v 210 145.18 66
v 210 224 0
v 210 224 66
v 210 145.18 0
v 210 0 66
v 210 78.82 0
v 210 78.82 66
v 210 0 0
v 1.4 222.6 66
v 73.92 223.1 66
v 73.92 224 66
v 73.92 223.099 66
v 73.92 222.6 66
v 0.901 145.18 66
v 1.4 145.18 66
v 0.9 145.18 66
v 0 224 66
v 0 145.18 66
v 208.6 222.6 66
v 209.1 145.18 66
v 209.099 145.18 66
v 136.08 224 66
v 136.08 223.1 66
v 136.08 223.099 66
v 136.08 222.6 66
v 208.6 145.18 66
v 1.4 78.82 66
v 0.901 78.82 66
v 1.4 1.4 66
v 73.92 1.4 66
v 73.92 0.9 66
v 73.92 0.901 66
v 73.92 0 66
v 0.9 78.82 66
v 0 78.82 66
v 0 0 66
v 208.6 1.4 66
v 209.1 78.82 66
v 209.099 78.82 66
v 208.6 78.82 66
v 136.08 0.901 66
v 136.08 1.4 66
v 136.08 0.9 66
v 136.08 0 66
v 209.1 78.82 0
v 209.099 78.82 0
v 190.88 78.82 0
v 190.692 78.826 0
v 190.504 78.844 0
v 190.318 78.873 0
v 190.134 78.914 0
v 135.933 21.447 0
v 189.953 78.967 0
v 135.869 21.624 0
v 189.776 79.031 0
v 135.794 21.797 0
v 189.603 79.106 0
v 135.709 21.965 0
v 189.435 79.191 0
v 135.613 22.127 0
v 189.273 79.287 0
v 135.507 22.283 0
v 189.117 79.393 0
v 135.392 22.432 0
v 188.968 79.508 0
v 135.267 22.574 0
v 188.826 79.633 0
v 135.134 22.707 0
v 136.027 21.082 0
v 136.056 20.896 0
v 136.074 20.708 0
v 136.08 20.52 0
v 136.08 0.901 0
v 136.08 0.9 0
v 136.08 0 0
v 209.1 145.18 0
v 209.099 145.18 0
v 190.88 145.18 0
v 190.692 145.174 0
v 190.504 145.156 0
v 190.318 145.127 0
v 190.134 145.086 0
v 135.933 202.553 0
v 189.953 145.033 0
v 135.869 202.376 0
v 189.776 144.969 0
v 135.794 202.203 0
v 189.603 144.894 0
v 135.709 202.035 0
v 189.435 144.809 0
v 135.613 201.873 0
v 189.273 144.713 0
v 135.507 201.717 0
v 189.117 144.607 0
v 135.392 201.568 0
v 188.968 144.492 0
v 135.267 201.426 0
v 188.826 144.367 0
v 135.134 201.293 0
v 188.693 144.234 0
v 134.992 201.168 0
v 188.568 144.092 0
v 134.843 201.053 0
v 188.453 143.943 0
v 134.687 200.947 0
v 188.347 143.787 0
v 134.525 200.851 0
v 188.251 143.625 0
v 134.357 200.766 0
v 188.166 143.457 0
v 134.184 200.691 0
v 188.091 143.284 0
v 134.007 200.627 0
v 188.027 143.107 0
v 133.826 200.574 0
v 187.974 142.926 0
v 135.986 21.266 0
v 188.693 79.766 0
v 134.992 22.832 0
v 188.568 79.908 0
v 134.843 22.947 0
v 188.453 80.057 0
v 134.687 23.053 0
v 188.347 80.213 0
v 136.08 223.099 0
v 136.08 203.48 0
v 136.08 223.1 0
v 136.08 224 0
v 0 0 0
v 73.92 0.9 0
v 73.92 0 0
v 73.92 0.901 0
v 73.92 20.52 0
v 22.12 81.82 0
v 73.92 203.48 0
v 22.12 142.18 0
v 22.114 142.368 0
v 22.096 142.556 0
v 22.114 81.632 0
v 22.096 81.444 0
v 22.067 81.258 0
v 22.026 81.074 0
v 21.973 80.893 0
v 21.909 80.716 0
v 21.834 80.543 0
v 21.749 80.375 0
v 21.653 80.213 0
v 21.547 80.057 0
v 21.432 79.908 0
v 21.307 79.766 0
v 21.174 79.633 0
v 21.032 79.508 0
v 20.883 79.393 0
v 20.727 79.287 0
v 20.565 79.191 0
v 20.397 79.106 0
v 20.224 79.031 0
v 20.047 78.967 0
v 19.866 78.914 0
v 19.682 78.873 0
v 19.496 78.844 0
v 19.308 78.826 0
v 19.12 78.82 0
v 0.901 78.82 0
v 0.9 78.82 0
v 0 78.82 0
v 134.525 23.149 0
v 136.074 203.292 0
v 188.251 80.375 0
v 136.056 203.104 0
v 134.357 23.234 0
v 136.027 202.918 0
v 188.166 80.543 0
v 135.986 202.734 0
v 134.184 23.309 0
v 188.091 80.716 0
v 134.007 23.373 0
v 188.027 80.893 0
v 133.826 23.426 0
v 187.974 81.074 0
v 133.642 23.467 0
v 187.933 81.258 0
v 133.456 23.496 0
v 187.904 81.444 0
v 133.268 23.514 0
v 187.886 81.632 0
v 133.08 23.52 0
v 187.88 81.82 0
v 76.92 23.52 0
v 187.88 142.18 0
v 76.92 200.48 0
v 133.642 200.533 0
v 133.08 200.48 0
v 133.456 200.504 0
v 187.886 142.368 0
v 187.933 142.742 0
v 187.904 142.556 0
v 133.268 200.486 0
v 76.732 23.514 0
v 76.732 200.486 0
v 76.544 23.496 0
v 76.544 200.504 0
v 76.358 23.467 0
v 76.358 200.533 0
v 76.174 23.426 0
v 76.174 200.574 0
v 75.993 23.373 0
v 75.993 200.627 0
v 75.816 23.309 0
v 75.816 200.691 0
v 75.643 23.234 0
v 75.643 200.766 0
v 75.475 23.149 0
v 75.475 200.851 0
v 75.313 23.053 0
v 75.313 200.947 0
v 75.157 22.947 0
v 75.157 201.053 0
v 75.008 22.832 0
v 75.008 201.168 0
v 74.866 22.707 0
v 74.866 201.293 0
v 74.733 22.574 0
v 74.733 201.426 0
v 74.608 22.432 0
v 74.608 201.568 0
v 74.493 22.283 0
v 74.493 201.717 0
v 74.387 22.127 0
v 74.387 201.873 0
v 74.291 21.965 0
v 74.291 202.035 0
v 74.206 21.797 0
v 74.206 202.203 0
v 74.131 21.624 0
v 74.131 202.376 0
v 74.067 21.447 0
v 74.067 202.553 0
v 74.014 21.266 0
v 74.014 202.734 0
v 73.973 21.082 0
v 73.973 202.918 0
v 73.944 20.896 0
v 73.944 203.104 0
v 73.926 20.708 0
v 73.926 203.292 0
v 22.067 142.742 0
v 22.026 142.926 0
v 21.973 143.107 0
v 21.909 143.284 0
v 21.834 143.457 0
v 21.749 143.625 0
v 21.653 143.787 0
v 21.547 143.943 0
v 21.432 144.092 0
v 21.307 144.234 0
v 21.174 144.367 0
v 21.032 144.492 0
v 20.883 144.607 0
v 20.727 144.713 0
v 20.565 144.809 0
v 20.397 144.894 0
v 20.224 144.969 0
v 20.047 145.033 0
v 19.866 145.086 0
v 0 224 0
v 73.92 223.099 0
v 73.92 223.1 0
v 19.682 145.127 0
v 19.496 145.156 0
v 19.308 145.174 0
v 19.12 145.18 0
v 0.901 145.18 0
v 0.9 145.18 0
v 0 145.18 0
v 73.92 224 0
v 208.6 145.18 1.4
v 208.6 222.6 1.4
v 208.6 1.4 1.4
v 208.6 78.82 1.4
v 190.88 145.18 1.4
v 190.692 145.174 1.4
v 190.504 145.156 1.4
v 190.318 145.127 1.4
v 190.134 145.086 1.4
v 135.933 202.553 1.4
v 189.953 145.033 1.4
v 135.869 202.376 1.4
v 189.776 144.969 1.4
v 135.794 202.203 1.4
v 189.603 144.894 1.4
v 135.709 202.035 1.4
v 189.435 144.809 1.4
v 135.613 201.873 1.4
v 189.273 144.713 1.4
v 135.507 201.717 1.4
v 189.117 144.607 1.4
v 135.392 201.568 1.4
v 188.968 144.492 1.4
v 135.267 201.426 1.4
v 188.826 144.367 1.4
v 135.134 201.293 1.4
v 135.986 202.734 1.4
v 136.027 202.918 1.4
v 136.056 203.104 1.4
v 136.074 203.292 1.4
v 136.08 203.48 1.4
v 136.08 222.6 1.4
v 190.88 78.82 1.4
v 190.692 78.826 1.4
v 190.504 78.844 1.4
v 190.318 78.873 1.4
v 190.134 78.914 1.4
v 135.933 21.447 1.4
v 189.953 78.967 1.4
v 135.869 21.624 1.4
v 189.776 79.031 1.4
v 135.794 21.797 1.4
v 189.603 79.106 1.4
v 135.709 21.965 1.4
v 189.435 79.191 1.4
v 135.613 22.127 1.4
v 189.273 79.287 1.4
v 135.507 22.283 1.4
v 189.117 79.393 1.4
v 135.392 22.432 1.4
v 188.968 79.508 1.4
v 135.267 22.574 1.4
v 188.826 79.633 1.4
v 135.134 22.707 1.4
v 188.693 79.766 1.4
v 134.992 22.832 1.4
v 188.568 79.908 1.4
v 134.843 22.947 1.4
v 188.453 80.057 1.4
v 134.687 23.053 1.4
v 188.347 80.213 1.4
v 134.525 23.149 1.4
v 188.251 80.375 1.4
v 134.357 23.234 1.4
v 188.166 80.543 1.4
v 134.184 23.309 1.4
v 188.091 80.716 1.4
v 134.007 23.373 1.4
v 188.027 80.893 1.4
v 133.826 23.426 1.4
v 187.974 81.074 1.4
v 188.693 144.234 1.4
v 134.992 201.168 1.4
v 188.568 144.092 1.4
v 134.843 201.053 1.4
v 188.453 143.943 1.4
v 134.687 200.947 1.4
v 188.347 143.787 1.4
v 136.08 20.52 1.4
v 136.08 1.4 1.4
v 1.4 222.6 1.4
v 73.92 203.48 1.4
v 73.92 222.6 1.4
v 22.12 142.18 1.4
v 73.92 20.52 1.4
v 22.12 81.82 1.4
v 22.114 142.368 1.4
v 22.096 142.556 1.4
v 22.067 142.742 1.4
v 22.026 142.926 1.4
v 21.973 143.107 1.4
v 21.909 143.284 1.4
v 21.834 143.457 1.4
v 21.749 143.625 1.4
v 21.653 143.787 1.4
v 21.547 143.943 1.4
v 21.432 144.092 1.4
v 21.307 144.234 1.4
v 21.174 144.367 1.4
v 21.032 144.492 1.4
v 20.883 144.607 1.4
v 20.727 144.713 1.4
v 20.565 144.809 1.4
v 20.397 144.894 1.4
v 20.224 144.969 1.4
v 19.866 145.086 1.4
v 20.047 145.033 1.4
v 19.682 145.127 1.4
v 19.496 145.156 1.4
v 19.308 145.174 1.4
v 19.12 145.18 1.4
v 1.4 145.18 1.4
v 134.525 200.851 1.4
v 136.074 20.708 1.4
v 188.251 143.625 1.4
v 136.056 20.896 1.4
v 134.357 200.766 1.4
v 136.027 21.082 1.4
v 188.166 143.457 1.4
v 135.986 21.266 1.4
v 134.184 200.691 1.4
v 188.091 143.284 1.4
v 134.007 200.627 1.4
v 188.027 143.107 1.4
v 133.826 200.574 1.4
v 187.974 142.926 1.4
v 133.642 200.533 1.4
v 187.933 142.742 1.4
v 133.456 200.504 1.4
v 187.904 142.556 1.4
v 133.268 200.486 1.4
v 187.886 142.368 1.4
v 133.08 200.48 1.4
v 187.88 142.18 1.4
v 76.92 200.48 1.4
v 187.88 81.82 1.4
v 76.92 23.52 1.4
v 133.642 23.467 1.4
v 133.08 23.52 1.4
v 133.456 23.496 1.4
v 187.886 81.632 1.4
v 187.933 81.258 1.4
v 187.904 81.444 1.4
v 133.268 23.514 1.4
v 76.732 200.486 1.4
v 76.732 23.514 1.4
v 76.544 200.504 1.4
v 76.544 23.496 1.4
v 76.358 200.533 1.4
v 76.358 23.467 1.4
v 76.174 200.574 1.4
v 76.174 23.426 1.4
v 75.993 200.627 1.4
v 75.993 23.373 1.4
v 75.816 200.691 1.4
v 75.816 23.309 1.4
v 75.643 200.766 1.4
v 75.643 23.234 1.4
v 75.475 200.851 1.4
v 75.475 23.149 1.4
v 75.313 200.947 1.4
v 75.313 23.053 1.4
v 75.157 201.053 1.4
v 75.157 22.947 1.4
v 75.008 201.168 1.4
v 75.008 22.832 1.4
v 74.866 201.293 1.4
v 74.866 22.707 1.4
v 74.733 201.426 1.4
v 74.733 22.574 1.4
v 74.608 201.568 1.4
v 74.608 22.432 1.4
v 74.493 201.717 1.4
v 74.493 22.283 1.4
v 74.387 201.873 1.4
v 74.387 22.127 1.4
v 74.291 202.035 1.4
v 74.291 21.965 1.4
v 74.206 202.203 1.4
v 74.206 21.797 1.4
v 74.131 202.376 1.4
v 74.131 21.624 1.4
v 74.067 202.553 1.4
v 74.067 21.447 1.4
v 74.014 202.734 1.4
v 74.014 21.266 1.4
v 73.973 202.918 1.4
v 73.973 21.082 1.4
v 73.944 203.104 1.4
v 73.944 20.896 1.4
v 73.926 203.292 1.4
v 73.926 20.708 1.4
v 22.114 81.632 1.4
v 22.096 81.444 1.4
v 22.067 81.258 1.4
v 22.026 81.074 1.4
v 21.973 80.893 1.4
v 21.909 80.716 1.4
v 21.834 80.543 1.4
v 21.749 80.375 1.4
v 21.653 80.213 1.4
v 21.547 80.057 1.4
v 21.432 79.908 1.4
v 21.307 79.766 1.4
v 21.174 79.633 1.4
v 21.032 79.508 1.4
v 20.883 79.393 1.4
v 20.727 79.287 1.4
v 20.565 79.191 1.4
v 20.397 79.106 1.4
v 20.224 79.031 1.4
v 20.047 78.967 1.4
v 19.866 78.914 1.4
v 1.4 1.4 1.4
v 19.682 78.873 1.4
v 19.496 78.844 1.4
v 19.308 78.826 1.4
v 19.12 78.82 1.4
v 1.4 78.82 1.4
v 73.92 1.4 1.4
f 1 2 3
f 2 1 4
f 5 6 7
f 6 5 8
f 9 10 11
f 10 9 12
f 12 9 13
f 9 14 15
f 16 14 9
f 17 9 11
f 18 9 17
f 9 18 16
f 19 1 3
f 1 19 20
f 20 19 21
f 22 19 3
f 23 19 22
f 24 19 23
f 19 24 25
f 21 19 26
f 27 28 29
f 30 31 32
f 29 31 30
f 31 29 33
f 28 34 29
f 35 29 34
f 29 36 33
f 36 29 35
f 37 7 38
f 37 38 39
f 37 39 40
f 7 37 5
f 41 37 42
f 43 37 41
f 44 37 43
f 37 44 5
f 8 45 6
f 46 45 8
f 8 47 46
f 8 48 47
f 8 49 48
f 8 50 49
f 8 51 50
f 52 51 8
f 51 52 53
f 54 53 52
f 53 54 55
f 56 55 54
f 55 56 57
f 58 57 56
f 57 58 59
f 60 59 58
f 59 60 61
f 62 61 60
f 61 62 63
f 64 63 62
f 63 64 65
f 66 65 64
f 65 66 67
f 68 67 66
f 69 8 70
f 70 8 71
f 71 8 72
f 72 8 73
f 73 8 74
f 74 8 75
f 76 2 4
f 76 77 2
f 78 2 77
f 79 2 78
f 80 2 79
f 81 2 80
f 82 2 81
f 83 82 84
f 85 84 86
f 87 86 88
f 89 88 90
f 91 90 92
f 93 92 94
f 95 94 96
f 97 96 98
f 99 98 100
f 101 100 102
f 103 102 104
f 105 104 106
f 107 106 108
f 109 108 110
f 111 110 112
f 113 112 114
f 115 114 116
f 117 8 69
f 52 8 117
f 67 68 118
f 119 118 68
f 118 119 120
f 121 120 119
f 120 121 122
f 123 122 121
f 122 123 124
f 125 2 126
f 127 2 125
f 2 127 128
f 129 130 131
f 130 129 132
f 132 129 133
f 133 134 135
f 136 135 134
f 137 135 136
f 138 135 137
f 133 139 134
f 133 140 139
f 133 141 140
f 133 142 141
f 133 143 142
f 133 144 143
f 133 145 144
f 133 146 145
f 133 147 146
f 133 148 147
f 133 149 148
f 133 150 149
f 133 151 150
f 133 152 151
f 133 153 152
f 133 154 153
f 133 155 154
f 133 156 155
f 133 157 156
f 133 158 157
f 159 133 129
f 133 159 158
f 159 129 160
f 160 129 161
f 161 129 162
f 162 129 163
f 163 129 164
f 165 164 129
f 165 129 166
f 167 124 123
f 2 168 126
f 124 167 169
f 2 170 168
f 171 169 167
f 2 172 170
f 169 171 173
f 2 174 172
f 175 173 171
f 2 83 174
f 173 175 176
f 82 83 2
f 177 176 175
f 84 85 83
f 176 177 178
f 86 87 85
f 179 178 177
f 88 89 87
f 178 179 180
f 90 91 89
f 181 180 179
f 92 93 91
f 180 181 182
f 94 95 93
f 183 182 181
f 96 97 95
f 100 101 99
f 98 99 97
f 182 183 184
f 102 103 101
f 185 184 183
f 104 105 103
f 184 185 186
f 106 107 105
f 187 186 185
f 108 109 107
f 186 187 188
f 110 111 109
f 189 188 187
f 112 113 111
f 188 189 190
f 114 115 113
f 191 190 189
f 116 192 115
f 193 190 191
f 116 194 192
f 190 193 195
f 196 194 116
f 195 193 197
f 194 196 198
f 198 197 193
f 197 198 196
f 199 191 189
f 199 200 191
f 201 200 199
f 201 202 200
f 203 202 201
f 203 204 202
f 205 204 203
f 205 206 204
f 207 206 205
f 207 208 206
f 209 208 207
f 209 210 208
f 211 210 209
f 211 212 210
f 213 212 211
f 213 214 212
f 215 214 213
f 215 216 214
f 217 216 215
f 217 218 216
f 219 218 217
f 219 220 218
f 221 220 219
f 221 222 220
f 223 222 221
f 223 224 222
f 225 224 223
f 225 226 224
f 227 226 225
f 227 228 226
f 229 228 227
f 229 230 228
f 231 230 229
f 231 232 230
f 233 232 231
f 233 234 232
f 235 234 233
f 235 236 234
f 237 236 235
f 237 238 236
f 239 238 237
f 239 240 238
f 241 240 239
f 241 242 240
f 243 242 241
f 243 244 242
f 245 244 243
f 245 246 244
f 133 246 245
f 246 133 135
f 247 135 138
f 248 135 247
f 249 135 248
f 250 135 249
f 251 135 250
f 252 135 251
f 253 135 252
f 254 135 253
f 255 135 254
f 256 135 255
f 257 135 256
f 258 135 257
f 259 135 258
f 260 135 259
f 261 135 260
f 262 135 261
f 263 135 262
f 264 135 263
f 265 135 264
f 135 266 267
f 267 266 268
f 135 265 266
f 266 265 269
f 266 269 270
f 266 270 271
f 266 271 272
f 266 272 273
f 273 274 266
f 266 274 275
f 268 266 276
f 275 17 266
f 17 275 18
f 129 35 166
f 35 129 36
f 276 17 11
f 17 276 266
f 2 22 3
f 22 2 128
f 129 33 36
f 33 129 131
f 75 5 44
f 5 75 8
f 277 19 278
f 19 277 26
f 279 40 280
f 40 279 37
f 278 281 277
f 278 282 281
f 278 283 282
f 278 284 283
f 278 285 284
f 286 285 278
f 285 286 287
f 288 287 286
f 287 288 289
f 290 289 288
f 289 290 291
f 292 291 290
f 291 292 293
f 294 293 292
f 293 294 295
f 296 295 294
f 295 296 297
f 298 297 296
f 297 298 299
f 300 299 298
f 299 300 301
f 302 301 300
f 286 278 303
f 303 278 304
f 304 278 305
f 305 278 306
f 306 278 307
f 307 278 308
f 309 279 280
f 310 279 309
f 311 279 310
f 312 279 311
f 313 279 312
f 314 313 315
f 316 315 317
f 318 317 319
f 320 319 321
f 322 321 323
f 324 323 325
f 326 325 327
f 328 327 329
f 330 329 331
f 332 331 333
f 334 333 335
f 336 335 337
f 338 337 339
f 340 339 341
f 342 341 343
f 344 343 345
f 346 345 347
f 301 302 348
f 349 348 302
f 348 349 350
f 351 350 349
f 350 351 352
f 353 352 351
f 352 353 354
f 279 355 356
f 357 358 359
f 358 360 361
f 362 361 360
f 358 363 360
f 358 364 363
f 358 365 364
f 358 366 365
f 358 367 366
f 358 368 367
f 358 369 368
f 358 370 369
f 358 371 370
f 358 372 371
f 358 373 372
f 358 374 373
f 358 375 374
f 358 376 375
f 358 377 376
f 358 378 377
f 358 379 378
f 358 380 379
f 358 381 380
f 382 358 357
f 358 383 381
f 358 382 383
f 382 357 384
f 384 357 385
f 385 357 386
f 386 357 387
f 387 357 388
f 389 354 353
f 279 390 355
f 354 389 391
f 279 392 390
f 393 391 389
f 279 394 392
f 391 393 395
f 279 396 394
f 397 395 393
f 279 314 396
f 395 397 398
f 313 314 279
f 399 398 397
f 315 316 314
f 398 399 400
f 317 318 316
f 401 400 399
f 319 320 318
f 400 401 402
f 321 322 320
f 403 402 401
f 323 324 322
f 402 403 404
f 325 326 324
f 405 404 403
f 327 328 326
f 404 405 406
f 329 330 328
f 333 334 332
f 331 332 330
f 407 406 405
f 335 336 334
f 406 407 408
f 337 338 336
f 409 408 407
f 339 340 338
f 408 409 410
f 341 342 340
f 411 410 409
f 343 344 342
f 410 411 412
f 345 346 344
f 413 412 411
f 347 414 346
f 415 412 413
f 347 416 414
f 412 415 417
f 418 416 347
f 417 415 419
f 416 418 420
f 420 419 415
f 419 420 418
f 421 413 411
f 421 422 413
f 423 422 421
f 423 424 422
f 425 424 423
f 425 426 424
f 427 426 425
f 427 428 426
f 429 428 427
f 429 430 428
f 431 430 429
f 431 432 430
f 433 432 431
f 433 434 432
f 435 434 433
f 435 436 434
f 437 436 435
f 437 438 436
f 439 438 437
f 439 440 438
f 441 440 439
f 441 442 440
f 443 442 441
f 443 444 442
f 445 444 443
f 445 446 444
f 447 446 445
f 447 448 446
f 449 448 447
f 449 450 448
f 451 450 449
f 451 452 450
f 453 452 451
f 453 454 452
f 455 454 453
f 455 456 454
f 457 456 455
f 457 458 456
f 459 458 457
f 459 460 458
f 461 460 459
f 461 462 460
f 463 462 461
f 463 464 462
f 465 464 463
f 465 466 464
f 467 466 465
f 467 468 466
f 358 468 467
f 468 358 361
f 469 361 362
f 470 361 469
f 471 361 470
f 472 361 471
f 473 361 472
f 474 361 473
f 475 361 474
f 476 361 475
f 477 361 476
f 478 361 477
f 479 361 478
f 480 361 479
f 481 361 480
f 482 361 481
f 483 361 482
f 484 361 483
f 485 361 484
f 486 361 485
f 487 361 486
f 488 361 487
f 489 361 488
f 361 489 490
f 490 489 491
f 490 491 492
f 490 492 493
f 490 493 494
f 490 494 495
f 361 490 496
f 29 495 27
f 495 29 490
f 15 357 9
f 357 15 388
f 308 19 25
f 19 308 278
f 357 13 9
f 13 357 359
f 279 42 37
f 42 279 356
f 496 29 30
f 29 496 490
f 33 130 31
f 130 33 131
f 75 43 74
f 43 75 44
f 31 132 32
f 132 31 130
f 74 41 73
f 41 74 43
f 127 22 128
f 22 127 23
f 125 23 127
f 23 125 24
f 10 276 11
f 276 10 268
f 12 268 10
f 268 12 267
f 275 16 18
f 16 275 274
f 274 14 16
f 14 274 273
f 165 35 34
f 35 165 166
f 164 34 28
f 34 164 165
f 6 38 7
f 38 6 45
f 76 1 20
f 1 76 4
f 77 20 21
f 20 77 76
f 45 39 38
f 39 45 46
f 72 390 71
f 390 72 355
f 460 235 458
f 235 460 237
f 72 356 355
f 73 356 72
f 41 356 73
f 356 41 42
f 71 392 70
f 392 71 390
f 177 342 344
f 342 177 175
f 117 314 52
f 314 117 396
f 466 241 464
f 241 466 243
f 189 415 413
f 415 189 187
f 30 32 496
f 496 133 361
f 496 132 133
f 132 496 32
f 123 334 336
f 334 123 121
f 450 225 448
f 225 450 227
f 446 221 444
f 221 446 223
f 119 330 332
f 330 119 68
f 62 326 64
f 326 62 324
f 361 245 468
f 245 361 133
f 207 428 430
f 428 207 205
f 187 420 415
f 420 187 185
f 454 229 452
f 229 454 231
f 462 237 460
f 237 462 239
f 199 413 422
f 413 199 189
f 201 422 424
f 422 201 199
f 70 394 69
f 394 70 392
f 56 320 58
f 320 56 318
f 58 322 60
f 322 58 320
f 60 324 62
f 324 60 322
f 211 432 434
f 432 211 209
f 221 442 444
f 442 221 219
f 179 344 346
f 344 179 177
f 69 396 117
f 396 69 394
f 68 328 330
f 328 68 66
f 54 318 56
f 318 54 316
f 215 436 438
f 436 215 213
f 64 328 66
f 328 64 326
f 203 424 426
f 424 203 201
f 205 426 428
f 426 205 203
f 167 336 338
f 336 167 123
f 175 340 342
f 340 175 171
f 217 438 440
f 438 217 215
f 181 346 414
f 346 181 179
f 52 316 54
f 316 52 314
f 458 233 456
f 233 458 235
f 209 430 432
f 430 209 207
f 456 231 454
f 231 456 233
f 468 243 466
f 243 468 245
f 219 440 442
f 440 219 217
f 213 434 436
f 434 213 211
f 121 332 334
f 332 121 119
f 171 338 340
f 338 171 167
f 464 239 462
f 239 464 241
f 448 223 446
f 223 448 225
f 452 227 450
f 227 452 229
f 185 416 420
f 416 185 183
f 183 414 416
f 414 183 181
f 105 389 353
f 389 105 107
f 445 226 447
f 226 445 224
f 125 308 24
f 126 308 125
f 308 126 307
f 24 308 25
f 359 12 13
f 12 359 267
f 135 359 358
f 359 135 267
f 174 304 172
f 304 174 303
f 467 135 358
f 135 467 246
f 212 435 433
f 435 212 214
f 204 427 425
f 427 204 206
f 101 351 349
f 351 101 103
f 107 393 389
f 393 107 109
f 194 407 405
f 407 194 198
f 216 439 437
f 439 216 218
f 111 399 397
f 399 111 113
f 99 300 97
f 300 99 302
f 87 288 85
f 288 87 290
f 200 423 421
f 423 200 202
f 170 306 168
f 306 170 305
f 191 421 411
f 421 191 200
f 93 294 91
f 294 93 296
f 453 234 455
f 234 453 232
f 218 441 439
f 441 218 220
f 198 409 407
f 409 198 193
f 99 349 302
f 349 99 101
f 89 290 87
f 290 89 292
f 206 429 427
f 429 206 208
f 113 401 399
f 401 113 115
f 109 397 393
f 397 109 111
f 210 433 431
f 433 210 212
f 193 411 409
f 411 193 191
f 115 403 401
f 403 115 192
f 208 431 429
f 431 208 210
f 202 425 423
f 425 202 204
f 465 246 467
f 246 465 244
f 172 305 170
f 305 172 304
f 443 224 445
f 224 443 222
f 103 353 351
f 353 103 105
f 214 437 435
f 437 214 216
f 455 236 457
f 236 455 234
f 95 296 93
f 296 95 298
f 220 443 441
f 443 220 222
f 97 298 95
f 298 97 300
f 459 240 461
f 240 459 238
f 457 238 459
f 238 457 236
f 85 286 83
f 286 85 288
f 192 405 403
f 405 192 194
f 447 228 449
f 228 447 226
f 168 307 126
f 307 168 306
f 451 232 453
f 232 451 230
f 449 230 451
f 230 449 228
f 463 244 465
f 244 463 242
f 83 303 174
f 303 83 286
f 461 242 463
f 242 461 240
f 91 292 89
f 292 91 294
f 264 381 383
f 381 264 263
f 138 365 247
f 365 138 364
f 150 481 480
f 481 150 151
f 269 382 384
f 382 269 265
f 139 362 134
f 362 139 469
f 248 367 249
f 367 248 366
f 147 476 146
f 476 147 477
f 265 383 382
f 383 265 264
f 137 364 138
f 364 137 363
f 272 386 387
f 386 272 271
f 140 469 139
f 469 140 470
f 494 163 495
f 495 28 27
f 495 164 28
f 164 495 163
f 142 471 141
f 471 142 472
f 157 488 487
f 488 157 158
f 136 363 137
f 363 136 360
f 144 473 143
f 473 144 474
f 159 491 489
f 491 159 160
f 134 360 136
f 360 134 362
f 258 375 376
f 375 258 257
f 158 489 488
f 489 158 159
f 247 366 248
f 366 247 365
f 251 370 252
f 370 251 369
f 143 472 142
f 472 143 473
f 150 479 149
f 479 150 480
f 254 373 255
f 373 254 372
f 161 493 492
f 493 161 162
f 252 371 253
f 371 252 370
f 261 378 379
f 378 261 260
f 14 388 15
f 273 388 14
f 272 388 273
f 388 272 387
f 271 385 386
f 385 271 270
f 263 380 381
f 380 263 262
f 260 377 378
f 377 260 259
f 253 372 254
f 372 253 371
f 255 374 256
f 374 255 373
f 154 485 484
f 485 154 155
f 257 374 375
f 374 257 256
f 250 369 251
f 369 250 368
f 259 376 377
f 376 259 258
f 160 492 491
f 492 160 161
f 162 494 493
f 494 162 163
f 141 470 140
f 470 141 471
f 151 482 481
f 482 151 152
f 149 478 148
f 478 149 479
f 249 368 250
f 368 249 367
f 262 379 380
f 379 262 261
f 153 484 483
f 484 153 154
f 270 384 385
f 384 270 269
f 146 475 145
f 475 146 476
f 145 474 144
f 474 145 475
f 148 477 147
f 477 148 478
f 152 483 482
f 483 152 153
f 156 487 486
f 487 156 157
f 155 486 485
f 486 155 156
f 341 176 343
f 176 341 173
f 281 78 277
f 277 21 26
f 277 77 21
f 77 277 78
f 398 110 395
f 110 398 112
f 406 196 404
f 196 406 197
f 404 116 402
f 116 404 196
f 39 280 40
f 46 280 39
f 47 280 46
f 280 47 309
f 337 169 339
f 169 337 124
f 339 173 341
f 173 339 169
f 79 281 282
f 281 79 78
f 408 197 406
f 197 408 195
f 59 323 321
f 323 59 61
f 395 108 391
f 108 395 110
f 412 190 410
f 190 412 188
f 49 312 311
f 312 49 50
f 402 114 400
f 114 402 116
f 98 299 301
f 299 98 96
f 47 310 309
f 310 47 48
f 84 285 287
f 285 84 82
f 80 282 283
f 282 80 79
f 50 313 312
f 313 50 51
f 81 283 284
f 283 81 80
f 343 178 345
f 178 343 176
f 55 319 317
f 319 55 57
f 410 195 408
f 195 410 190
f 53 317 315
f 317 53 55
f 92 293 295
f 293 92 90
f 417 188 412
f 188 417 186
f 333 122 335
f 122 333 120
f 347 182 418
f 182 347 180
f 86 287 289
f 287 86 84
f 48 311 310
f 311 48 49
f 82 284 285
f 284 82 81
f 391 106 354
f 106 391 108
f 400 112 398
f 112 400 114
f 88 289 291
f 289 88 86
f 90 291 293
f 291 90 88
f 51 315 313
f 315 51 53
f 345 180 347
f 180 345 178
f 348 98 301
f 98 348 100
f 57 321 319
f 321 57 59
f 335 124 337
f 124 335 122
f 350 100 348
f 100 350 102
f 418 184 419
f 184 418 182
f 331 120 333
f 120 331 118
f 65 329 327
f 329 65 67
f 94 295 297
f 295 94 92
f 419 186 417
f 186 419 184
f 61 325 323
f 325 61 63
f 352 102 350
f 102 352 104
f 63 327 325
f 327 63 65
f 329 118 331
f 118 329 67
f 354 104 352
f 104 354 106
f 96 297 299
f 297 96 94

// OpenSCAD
include <boardgame_insert_toolkit_lib.2.scad>;

// determines whether lids are output.
g_b_print_lid = true;

// determines whether boxes are output.
g_b_print_box = true; 

// Focus on one box
g_isolated_print_box = ""; 

// Used to visualize how all of the boxes fit together. 
g_b_visualization = false;          
        
// this is the outer wall thickness. 
//Default = 1.5mm
g_wall_thickness = 1.4;

// The tolerance value is extra space put between planes of the lid and box that fit together.
// Increase the tolerance to loosen the fit and decrease it to tighten it.
//
// Note that the tolerance is applied exclusively to the lid.
// So if the lid is too tight or too loose, change this value ( up for looser fit, down for tighter fit ) and 
// you only need to reprint the lid.
// 
// The exception is the stackable box, where the bottom of the box is the lid of the box below,
// in which case the tolerance also affects that box bottom.
//
g_tolerance = 0.15;

// This adjusts the position of the lid detents downward. 
// The larger the value, the bigger the gap between the lid and the box.
g_tolerance_detents_pos = 0.1;

aw_x = 210;
aw_y = 224;
aw_z = 66;

data =
  [
    [
      "hex tile box",
      [
        [ BOX_SIZE_XYZ, [aw_x, aw_y, aw_z] ],
        [ BOX_NO_LID_B, t],
        /*
        [
          BOX_LID,
          [
            [ LID_SOLID_B, t],
          ]
        ],
        */
        [
          BOX_COMPONENT,
          [
            [ CMP_NUM_COMPARTMENTS_XY, [1, 1] ],
            [
              CMP_COMPARTMENT_SIZE_XYZ,
              [
                aw_x - 2 * g_wall_thickness,
                aw_y - 2 * g_wall_thickness,
                aw_z - 1 * g_wall_thickness
              ]
            ],
            //[ CMP_SHAPE, HEX ],
            //[ CMP_SHAPE_VERTICAL_B, t ],
            [ POSITION_XY, [ CENTER, CENTER ] ],
            [ CMP_CUTOUT_SIDES_4B, [ t, t, t, t ] ],
            [ CMP_CUTOUT_DEPTH_PCT, 10 ],
            [ CMP_CUTOUT_WIDTH_PCT, 30 ],
            [ CMP_CUTOUT_HEIGHT_PCT, 100 ],
            //[ CMP_CUTOUT_TYPE, BOTH ], // BOTH, INTERIOR, EXTERIOR
            //[ CMP_CUTOUT_BOTTOM_B, t ], // BOTH, INTERIOR, EXTERIOR
            //[ CMP_CUTOUT_CORNERS_4B, [ t, t, t, t ] ],
            //[CMP_SHEAR,                     [0,45]],
          ]
        ],                            
      ]
    ],
  ];


MakeAll();
